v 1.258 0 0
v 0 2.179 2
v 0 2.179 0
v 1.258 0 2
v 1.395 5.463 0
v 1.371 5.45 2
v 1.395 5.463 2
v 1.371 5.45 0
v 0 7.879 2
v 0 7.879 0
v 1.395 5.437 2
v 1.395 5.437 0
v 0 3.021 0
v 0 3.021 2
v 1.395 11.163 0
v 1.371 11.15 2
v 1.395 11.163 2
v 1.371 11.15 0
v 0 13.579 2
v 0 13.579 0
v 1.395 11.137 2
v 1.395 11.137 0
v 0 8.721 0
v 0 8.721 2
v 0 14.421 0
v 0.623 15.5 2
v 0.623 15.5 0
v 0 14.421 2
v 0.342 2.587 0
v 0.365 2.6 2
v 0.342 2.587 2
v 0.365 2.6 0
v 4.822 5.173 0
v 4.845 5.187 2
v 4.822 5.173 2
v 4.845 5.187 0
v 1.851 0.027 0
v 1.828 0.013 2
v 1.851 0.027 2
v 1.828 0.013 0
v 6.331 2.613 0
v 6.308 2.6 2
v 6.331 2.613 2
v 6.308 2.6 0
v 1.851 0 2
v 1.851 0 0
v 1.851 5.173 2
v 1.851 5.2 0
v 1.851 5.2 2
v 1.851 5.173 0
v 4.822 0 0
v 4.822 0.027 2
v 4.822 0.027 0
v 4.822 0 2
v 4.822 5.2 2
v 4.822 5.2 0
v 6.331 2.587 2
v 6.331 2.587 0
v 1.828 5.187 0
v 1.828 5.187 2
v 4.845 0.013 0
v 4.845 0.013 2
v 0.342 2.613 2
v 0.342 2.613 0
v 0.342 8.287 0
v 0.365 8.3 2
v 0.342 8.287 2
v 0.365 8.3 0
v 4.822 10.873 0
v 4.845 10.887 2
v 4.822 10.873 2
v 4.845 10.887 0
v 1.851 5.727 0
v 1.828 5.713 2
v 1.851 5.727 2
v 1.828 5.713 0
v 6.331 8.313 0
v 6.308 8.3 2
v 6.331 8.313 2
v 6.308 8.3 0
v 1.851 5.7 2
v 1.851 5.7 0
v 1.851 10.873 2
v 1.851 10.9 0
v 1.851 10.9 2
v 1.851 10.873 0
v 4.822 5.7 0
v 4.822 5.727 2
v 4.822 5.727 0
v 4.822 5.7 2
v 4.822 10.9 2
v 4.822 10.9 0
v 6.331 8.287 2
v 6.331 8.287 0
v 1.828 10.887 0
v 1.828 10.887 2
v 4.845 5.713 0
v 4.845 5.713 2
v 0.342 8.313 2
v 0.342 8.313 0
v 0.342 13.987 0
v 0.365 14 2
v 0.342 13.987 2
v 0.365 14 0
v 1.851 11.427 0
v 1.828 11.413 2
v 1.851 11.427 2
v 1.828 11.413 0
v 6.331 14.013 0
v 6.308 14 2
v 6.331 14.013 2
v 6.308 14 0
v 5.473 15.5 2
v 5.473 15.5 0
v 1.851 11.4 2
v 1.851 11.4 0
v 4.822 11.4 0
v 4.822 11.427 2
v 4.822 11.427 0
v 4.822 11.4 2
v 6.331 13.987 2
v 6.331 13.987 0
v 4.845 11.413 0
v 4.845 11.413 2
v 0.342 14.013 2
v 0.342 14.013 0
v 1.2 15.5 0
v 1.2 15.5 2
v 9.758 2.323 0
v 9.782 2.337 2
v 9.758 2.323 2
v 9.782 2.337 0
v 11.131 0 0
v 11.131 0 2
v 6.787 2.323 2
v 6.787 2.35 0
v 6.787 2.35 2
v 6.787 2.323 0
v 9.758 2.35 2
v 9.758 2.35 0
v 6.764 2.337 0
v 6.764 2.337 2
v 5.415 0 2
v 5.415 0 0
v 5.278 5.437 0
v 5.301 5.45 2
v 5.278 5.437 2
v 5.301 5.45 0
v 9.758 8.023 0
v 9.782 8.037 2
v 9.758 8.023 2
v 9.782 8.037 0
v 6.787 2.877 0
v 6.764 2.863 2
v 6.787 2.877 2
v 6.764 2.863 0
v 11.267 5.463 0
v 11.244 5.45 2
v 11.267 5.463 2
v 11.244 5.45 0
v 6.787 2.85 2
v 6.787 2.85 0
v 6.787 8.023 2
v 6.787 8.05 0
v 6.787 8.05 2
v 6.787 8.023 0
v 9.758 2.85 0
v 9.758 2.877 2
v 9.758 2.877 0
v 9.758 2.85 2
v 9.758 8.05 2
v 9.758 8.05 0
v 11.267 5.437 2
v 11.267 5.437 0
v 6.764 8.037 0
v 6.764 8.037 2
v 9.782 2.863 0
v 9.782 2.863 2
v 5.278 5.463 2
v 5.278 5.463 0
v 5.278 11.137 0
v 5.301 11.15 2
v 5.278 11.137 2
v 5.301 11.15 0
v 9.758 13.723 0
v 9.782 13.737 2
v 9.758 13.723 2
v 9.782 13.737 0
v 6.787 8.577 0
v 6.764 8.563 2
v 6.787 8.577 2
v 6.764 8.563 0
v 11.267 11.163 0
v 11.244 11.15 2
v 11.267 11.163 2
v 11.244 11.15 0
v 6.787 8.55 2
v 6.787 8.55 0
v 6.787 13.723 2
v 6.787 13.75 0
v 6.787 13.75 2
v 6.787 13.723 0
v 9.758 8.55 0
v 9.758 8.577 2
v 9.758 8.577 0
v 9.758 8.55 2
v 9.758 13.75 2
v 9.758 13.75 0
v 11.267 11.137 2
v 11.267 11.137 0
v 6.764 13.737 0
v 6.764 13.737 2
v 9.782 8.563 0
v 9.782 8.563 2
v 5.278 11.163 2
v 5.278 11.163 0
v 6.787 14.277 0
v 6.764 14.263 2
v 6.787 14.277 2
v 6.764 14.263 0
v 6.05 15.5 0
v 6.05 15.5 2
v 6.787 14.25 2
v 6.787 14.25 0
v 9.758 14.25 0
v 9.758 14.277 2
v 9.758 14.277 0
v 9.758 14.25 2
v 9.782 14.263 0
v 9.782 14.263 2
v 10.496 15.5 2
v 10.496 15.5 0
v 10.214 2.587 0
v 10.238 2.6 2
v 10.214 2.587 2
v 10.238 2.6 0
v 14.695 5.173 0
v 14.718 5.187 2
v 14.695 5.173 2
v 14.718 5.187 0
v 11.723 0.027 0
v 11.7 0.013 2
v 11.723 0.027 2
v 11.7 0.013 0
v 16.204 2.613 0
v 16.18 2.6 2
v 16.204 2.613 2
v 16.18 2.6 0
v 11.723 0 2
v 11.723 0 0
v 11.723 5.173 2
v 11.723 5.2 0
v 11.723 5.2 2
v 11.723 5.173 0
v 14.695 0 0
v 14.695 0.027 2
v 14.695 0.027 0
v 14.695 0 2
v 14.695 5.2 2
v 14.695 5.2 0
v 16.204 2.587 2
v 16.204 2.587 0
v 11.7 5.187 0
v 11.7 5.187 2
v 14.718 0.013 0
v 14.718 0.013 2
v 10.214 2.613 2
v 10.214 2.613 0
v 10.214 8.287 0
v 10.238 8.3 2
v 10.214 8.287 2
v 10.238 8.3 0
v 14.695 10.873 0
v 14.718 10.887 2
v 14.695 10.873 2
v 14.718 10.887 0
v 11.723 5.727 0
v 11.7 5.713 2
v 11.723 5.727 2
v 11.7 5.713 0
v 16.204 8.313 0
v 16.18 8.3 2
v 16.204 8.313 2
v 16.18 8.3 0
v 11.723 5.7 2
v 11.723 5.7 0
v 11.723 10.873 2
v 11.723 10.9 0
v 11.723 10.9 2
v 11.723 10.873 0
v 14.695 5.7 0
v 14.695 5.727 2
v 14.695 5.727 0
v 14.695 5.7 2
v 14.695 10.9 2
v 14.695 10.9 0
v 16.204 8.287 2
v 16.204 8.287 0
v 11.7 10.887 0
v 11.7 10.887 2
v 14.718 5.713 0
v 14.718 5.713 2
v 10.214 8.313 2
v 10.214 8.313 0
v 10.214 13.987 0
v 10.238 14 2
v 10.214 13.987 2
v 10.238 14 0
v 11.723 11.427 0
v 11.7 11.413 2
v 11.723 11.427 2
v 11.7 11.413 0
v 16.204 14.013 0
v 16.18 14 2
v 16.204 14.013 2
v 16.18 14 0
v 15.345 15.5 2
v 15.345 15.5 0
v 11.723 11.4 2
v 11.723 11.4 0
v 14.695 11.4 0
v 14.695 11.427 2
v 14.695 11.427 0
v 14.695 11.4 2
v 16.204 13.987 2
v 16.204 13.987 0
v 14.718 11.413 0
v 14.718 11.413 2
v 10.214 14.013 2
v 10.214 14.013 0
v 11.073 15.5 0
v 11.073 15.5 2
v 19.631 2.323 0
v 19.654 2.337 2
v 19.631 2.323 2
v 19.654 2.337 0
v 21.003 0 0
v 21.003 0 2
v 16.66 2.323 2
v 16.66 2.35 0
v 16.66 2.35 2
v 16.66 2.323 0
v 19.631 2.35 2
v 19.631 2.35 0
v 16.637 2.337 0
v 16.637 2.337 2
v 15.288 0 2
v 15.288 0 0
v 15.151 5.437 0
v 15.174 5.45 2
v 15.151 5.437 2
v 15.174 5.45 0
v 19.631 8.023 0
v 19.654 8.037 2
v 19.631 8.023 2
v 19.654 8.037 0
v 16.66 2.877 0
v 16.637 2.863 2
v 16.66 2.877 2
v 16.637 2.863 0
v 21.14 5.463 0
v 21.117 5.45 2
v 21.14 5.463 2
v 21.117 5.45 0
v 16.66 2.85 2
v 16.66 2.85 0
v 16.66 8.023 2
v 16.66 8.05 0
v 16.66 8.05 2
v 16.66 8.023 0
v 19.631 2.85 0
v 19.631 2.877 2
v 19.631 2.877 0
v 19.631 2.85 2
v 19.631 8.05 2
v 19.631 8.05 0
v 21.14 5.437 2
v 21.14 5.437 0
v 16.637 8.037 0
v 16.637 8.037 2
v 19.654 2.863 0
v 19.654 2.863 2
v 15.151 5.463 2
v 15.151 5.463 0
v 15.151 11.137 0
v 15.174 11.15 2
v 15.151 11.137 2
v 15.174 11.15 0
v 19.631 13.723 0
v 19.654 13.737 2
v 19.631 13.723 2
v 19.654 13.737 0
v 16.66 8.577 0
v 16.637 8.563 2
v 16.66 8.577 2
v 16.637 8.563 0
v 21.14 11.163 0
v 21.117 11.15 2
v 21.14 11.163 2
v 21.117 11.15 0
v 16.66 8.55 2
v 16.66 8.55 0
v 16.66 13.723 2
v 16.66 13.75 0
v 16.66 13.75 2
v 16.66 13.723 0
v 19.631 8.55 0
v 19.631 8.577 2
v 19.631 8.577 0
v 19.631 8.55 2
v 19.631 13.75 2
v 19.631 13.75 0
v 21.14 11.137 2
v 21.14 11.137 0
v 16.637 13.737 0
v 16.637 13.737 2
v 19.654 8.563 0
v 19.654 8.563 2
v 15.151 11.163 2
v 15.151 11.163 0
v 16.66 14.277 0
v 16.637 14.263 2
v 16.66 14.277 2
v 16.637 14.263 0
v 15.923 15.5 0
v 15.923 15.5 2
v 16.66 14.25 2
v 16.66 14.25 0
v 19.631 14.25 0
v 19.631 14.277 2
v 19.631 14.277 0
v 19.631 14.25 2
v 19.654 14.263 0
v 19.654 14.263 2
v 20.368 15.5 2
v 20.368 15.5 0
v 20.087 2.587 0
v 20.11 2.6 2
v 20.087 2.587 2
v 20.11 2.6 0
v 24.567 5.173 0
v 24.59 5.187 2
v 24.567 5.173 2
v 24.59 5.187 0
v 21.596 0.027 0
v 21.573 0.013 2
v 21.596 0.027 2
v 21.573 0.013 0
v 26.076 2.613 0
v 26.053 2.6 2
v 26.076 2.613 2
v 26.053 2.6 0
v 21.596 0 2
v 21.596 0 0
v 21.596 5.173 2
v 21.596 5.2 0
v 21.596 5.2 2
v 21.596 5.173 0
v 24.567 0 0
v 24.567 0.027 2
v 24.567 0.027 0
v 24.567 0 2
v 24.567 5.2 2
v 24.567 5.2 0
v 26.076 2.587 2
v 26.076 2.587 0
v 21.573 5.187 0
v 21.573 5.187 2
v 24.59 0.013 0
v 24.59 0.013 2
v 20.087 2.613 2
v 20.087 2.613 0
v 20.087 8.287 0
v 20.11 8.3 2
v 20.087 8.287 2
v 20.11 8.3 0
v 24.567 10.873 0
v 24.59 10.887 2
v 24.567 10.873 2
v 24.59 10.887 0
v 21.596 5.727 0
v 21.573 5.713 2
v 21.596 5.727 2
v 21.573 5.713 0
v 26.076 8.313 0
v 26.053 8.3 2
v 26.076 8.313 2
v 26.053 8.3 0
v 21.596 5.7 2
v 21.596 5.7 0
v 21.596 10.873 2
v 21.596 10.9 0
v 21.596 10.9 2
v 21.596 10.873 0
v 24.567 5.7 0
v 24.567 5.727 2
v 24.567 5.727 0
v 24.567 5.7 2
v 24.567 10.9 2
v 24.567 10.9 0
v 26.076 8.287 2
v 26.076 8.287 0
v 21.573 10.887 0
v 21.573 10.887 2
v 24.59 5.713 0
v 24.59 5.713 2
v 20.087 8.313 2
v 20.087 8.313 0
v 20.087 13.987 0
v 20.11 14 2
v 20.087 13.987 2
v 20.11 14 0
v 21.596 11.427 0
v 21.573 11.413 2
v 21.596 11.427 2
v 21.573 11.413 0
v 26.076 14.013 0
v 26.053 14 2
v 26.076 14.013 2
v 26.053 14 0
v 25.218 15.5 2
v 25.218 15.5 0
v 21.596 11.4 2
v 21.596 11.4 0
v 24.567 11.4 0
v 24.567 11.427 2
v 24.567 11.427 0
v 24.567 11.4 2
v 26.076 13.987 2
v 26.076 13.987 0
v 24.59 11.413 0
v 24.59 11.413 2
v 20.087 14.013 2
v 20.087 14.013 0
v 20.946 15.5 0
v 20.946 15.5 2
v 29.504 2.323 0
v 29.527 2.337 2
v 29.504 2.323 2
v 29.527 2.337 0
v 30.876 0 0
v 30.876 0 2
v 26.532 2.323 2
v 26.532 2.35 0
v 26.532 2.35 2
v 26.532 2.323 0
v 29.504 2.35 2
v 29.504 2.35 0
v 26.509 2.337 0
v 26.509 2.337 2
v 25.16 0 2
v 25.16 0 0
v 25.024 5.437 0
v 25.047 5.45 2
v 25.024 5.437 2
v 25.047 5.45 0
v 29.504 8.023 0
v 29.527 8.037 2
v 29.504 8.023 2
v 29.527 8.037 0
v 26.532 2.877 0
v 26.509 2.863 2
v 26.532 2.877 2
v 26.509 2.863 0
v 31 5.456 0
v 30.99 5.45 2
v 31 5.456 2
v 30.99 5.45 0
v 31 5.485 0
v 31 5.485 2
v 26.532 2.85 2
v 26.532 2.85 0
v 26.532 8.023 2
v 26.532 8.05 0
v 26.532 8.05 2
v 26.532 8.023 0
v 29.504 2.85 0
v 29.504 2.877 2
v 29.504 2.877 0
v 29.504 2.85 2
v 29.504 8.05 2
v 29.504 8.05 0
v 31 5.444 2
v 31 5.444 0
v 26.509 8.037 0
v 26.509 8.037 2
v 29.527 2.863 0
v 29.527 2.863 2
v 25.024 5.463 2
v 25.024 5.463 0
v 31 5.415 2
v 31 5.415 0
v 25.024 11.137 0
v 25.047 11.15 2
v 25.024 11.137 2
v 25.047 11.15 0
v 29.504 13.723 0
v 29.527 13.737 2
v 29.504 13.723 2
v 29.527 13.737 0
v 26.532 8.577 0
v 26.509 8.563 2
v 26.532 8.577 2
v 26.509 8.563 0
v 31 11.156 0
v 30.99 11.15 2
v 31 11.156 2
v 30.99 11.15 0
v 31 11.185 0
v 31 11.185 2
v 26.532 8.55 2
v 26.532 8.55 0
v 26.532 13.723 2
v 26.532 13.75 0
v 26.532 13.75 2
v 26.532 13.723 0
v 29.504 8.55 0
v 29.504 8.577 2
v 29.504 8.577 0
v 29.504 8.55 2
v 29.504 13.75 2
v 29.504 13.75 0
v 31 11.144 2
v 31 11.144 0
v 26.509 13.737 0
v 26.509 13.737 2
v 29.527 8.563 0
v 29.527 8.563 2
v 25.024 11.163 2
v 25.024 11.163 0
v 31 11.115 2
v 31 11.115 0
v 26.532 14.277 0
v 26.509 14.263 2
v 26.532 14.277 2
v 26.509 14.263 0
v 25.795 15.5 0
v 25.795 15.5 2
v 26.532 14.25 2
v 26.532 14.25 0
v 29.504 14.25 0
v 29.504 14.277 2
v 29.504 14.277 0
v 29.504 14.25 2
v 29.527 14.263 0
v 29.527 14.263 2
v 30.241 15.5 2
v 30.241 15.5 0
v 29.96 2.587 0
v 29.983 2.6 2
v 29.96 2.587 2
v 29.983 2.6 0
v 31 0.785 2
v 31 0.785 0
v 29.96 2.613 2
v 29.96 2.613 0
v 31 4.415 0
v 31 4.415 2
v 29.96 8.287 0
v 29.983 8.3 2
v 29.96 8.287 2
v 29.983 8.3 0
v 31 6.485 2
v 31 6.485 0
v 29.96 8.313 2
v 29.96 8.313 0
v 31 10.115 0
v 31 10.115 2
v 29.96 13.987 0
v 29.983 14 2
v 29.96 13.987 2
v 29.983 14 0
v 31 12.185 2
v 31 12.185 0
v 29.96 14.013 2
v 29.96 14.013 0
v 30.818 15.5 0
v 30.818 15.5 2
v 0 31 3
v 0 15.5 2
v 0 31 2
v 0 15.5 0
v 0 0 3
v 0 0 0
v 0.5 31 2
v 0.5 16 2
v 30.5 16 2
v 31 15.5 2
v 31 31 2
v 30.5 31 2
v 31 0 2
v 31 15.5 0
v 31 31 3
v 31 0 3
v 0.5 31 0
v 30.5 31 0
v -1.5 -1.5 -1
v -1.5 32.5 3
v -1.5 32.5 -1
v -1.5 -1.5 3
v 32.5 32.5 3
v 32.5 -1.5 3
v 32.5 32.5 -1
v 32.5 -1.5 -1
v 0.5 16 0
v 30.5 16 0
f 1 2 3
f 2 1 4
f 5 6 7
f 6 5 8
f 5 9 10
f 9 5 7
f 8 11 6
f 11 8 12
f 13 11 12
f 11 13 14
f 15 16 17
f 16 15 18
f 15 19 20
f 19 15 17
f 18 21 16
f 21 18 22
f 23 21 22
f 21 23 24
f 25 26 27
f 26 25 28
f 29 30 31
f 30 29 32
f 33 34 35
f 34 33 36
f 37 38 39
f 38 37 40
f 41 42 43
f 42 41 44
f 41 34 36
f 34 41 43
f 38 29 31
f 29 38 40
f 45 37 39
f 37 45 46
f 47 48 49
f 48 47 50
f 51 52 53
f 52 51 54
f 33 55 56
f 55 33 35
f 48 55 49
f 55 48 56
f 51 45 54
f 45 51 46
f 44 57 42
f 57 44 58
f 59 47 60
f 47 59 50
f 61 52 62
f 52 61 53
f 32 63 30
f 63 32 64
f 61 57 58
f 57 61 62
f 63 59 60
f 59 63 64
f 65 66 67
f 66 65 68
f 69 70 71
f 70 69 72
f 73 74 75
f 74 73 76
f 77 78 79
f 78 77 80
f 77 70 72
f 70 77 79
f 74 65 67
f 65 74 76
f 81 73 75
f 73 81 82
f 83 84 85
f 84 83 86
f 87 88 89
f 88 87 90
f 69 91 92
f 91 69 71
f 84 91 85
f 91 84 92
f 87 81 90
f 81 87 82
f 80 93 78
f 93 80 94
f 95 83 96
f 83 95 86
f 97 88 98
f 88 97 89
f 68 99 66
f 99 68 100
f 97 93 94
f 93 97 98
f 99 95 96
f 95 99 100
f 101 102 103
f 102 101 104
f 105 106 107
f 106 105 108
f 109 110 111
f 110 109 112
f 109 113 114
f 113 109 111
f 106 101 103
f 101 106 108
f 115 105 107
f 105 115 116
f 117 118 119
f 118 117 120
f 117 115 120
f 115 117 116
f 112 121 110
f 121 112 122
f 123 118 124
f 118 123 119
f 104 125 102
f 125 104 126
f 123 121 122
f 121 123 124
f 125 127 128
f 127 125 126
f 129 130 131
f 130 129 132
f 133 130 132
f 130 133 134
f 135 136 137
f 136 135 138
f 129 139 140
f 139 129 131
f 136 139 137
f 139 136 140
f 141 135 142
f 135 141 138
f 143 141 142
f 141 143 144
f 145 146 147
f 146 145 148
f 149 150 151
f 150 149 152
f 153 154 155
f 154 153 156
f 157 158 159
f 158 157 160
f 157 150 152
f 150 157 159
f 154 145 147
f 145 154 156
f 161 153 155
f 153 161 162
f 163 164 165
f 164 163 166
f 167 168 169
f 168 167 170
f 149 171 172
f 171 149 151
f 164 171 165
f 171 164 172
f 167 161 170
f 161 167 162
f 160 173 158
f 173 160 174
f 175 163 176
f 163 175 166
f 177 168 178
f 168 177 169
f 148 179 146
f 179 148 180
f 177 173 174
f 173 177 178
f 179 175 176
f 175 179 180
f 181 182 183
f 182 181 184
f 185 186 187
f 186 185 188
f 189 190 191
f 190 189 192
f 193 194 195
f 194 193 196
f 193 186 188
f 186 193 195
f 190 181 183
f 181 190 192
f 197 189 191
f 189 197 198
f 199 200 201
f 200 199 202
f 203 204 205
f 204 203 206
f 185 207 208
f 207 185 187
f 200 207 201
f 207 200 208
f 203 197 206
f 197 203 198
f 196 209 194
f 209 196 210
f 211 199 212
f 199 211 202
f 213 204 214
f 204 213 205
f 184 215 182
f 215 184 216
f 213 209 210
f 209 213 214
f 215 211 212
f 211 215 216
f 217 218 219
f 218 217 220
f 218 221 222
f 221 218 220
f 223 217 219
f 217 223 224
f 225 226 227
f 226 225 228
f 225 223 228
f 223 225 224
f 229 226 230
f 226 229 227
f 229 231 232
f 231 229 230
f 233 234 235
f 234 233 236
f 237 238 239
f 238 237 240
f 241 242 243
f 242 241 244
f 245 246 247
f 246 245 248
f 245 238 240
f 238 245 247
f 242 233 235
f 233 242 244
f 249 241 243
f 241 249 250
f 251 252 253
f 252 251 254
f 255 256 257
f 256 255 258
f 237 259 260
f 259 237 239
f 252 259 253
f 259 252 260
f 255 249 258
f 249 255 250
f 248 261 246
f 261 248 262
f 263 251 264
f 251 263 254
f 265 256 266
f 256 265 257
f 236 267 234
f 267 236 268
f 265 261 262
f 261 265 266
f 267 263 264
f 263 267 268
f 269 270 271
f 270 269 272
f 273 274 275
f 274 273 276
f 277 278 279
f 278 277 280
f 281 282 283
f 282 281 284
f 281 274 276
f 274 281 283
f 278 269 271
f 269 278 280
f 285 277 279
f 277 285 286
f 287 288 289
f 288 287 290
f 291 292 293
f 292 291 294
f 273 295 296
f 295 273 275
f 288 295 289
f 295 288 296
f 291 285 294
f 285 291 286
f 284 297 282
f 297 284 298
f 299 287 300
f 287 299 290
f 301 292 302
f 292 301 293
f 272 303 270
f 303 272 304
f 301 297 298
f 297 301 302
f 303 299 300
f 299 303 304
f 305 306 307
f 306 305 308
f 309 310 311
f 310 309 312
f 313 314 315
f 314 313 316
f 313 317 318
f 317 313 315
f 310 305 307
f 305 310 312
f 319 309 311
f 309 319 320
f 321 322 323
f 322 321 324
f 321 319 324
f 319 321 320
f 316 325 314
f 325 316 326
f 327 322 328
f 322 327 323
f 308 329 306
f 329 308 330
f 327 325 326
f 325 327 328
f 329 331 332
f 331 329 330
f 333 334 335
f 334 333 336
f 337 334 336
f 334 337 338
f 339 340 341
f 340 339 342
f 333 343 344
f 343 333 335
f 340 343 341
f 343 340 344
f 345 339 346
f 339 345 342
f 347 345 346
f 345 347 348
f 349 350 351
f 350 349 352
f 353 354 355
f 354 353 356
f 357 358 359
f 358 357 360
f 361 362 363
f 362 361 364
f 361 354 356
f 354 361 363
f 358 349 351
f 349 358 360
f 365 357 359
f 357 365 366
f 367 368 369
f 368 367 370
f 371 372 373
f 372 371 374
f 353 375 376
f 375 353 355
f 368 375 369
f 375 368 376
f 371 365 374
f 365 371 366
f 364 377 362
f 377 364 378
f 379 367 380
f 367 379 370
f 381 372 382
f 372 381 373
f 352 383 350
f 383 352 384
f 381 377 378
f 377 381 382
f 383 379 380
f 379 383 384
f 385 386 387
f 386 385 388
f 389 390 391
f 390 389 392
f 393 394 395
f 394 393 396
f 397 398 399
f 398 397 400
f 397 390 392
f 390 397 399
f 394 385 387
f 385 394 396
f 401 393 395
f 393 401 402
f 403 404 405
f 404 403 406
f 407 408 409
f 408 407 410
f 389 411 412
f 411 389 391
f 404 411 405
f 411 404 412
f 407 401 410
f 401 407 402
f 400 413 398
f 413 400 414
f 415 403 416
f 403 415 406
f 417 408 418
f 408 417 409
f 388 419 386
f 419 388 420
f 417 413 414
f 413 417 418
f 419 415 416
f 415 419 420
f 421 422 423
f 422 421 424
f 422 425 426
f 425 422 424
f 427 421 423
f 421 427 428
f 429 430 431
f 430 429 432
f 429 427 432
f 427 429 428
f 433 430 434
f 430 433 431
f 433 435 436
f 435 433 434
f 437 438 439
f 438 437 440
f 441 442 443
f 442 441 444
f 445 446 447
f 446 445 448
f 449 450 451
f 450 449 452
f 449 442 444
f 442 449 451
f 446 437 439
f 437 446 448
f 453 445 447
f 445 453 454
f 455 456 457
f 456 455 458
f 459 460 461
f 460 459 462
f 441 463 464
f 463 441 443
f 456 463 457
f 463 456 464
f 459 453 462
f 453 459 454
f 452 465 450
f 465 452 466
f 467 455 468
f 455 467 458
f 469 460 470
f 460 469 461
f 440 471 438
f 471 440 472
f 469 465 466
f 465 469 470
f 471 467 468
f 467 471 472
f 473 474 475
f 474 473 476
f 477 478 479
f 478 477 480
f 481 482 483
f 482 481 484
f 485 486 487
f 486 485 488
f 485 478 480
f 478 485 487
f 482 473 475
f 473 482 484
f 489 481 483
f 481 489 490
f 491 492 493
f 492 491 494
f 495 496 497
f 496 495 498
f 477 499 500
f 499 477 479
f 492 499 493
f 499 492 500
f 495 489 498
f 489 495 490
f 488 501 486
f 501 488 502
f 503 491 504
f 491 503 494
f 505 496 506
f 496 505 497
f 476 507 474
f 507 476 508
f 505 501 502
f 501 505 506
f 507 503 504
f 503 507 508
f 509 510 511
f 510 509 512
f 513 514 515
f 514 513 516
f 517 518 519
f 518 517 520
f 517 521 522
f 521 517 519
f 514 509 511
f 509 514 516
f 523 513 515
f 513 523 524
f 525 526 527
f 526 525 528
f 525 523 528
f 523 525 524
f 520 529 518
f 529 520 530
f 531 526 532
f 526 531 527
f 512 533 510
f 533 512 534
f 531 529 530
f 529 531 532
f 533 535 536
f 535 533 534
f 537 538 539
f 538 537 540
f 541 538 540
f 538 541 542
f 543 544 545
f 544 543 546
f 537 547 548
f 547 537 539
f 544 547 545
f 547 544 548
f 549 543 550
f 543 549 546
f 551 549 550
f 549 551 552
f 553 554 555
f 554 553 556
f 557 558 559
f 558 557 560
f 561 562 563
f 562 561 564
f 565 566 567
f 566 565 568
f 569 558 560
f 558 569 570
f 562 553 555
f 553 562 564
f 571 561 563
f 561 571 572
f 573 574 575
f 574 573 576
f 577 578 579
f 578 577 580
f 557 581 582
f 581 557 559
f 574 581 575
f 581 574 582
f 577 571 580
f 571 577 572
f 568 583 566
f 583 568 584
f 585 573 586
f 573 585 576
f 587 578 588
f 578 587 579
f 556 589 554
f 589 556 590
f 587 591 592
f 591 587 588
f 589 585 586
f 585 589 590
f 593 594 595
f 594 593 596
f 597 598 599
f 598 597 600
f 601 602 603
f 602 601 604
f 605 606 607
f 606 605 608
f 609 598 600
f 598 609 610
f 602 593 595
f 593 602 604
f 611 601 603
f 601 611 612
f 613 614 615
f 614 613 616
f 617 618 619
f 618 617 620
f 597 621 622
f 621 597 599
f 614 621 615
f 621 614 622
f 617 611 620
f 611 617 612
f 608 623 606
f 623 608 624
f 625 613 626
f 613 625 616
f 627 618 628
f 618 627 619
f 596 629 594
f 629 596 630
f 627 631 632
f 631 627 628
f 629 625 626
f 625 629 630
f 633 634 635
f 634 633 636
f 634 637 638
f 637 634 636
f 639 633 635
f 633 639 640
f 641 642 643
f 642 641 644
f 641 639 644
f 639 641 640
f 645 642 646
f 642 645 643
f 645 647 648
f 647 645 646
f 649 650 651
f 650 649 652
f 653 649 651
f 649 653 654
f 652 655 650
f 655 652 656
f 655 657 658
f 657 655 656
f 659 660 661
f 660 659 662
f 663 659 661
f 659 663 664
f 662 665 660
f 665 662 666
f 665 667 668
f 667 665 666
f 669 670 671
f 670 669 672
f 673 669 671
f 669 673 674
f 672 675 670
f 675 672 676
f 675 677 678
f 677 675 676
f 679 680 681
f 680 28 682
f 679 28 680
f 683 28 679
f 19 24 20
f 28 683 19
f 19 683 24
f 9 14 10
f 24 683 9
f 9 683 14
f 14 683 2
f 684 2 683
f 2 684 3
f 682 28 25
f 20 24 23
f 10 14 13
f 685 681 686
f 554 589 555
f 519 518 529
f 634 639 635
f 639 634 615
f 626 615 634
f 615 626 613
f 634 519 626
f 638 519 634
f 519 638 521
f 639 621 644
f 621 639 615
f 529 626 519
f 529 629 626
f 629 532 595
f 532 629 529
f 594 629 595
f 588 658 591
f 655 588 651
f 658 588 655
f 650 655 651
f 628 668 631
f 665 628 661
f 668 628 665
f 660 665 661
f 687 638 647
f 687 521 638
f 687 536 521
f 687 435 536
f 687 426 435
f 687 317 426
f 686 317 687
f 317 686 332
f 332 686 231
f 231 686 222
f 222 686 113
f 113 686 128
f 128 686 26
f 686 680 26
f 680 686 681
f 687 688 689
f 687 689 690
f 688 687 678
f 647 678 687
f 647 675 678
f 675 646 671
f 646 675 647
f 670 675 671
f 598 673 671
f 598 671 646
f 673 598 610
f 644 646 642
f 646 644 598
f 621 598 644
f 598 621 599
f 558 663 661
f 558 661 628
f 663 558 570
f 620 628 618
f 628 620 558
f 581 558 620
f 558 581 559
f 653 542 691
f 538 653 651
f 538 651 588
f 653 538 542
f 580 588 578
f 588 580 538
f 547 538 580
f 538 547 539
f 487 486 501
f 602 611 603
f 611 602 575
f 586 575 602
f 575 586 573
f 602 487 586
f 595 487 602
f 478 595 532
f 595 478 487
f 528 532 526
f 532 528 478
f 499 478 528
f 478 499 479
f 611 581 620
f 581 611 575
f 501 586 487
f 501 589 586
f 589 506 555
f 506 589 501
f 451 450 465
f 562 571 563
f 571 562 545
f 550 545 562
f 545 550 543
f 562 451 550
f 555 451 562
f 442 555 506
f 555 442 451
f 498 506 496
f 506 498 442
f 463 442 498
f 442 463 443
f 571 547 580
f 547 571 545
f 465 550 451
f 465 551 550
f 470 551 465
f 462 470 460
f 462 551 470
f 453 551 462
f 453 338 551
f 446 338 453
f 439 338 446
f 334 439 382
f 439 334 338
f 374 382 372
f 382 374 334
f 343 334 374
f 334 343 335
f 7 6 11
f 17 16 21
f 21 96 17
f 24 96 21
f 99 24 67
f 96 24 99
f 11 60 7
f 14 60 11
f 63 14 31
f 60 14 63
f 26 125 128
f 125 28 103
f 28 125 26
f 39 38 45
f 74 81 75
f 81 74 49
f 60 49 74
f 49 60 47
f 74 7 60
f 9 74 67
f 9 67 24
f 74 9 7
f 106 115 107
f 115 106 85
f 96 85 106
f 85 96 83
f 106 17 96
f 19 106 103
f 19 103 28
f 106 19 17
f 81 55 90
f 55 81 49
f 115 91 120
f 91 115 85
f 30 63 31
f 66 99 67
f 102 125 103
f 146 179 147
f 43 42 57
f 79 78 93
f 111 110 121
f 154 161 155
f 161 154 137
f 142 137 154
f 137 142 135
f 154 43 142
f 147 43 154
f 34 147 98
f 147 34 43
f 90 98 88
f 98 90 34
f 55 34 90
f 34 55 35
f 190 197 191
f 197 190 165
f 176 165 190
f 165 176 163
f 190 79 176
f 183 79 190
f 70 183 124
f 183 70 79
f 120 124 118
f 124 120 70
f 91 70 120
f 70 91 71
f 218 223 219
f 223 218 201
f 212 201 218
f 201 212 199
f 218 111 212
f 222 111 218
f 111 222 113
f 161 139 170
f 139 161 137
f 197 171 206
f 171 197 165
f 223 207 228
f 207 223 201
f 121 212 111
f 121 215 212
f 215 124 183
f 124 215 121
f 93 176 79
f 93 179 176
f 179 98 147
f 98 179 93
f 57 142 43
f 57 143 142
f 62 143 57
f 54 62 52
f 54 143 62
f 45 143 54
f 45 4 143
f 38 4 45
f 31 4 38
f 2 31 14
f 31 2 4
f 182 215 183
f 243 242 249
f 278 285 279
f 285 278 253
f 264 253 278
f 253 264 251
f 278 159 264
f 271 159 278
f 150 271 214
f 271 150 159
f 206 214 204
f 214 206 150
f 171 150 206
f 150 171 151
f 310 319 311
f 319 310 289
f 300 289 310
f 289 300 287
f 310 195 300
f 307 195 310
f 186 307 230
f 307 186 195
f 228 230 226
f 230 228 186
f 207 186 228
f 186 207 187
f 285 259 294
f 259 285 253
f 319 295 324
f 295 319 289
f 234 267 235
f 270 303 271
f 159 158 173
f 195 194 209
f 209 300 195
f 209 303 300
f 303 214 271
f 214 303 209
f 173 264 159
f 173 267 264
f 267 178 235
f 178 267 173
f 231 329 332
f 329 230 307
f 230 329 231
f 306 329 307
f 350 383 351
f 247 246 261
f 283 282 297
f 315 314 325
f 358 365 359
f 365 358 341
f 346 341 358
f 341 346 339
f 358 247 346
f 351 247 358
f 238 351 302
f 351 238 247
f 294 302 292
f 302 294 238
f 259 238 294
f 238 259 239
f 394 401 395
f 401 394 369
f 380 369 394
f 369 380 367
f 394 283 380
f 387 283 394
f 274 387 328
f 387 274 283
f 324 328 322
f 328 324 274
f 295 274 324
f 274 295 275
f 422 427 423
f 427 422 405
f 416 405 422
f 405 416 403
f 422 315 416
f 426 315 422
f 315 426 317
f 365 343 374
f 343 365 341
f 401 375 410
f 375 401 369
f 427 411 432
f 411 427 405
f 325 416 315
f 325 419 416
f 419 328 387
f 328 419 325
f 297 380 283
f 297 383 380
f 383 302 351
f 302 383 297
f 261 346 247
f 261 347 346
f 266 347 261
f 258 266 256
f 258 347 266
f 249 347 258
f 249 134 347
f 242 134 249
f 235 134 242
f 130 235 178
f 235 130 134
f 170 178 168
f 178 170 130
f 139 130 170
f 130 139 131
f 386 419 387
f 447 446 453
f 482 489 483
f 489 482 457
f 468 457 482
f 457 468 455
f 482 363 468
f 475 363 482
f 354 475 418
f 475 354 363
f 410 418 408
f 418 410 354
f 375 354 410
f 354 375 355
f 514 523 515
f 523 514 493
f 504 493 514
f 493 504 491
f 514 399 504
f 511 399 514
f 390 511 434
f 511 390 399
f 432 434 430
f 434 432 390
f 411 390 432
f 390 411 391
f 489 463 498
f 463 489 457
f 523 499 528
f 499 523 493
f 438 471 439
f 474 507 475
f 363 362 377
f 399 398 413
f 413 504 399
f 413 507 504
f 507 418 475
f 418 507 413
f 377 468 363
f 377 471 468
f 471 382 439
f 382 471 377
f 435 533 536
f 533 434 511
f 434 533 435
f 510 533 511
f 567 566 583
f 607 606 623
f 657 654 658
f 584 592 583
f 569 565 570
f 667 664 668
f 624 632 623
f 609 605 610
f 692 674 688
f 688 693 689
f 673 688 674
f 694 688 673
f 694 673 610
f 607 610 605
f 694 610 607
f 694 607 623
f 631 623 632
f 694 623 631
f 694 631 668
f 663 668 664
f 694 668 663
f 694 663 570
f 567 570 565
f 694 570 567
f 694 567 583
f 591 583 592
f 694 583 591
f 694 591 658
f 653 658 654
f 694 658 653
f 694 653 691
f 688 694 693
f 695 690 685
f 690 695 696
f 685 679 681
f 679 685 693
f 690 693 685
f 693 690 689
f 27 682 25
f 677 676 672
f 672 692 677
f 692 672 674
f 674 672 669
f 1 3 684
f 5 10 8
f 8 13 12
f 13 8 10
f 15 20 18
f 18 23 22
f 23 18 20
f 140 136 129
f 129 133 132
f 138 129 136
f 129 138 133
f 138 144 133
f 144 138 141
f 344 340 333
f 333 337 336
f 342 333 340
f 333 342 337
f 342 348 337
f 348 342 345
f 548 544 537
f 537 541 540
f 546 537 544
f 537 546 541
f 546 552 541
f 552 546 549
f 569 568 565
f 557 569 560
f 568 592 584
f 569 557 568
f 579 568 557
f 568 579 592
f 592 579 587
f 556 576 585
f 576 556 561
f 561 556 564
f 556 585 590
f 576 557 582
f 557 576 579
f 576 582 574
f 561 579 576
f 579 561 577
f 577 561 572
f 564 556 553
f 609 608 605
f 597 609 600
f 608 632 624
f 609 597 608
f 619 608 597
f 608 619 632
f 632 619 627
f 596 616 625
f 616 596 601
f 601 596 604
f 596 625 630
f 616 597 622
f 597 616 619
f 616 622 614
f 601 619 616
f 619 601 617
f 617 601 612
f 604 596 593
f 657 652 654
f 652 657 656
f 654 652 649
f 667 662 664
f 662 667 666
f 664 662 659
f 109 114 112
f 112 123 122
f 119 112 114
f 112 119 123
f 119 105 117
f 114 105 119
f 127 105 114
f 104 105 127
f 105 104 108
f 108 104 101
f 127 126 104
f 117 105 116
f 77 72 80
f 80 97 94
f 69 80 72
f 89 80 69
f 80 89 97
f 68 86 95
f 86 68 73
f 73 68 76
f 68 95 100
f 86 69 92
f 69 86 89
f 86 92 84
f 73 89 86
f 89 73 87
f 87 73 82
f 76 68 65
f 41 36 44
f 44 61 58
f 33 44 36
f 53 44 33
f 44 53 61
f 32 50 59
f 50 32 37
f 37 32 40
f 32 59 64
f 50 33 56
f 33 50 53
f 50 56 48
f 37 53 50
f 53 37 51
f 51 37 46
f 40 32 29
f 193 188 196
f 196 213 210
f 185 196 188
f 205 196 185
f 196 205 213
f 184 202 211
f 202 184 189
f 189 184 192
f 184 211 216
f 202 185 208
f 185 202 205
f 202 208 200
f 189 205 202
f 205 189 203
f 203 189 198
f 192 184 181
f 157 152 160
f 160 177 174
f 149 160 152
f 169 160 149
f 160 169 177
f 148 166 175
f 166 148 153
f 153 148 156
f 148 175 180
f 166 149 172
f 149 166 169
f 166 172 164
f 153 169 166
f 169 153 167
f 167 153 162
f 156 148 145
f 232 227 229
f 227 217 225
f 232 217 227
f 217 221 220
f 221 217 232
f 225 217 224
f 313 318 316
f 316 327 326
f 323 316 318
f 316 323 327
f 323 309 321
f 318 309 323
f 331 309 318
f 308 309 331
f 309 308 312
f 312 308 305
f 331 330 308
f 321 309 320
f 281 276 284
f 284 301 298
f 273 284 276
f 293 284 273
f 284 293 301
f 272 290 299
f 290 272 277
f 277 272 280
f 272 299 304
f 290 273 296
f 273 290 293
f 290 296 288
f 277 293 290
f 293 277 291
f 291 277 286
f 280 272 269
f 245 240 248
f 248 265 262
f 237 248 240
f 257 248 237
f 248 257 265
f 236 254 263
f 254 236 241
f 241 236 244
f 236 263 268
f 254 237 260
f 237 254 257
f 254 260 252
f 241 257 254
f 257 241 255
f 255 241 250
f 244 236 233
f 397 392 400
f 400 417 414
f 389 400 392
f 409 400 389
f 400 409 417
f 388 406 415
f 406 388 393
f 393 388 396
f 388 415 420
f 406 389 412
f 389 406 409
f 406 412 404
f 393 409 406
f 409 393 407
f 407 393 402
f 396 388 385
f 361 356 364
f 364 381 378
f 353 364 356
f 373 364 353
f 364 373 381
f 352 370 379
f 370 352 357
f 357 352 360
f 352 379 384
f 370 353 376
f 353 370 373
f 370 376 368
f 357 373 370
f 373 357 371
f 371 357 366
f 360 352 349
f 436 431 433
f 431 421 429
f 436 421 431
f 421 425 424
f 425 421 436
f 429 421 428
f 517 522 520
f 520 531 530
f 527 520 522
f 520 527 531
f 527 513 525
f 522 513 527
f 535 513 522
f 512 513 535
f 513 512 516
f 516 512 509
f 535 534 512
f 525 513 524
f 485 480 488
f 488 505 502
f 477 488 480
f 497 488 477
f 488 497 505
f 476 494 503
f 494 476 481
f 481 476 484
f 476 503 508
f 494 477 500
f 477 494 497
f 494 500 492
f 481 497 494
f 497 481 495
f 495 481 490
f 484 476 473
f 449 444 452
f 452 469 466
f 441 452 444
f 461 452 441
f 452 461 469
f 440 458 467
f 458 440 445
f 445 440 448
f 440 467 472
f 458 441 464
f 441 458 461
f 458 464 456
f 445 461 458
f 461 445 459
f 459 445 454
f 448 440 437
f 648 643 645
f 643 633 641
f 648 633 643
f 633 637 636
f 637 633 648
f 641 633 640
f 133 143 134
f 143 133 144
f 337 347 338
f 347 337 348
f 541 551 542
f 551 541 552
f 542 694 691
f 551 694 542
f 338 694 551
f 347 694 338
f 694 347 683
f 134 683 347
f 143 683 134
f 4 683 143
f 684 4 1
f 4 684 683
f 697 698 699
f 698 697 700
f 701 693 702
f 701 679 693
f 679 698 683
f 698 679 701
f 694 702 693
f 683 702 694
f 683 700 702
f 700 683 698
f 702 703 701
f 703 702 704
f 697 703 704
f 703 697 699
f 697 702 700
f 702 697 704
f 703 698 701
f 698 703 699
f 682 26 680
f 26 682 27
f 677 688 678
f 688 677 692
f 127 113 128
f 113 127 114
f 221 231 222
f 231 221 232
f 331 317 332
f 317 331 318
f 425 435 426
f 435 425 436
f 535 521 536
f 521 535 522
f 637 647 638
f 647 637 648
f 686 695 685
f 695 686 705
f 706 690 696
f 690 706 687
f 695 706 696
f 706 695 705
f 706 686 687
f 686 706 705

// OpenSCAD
module hc_hexagon(size, height) {
	box_width = size/1.75;
	for (r = [-60, 0, 60]) rotate([0,0,r]) cube([box_width, size, height],
true);
}

module hc_column(length, height, cell_size, wall_thickness) {
   no_of_cells = floor(1 + length / (cell_size + wall_thickness)) ;

        for (i = [0 : no_of_cells]) {
                translate([0,(i * (cell_size + wall_thickness)),0])
                        hc_hexagon(cell_size, height + 1);
        }
}

module honeycomb (length, width, height, cell_size, wall_thickness, sample_length, sample_width) {
    length = length - 6*wall_thickness;
    width = width - 6*wall_thickness;
    difference(){
        union(){
            no_of_rows = floor(1.75 * length / (cell_size + wall_thickness)) ;

            tr_mod = cell_size + wall_thickness;
            tr_x = sqrt(3)/2 * tr_mod;
            tr_y = tr_mod / 2;
            off_x = -cell_size/2 + 2 * wall_thickness;
            off_y = -wall_thickness/2;
            difference(){
                        cube([length, width, height]);
                        for (i = [0 : no_of_rows]) {
                                translate([i * tr_x + off_x, (i % 2) * tr_y + off_y, (height) / 2])
                                        hc_column(width, height, cell_size, wall_thickness);
                        }
            }
            difference() {
                translate([-3*wall_thickness, -3*wall_thickness, -2*wall_thickness]){
                    cube([length+6*wall_thickness, width+6*wall_thickness, height+4*wall_thickness]);
                }
                cube([length, width, 3*height]);
            }
        translate([0,width-sample_width-1*wall_thickness, 0]) cube([length, sample_width+1*wall_thickness, 1*height]);
        }
       translate([(length-sample_length)/2,width-sample_width, 0]) cube([sample_length, sample_width, 5]);
    }
}
//honeycomb(length, width, height, cell_size, wall_thickness, sample_length, sample_width);
honeycomb(34, 34, 2, 5.2, 0.5, 30, 15);
